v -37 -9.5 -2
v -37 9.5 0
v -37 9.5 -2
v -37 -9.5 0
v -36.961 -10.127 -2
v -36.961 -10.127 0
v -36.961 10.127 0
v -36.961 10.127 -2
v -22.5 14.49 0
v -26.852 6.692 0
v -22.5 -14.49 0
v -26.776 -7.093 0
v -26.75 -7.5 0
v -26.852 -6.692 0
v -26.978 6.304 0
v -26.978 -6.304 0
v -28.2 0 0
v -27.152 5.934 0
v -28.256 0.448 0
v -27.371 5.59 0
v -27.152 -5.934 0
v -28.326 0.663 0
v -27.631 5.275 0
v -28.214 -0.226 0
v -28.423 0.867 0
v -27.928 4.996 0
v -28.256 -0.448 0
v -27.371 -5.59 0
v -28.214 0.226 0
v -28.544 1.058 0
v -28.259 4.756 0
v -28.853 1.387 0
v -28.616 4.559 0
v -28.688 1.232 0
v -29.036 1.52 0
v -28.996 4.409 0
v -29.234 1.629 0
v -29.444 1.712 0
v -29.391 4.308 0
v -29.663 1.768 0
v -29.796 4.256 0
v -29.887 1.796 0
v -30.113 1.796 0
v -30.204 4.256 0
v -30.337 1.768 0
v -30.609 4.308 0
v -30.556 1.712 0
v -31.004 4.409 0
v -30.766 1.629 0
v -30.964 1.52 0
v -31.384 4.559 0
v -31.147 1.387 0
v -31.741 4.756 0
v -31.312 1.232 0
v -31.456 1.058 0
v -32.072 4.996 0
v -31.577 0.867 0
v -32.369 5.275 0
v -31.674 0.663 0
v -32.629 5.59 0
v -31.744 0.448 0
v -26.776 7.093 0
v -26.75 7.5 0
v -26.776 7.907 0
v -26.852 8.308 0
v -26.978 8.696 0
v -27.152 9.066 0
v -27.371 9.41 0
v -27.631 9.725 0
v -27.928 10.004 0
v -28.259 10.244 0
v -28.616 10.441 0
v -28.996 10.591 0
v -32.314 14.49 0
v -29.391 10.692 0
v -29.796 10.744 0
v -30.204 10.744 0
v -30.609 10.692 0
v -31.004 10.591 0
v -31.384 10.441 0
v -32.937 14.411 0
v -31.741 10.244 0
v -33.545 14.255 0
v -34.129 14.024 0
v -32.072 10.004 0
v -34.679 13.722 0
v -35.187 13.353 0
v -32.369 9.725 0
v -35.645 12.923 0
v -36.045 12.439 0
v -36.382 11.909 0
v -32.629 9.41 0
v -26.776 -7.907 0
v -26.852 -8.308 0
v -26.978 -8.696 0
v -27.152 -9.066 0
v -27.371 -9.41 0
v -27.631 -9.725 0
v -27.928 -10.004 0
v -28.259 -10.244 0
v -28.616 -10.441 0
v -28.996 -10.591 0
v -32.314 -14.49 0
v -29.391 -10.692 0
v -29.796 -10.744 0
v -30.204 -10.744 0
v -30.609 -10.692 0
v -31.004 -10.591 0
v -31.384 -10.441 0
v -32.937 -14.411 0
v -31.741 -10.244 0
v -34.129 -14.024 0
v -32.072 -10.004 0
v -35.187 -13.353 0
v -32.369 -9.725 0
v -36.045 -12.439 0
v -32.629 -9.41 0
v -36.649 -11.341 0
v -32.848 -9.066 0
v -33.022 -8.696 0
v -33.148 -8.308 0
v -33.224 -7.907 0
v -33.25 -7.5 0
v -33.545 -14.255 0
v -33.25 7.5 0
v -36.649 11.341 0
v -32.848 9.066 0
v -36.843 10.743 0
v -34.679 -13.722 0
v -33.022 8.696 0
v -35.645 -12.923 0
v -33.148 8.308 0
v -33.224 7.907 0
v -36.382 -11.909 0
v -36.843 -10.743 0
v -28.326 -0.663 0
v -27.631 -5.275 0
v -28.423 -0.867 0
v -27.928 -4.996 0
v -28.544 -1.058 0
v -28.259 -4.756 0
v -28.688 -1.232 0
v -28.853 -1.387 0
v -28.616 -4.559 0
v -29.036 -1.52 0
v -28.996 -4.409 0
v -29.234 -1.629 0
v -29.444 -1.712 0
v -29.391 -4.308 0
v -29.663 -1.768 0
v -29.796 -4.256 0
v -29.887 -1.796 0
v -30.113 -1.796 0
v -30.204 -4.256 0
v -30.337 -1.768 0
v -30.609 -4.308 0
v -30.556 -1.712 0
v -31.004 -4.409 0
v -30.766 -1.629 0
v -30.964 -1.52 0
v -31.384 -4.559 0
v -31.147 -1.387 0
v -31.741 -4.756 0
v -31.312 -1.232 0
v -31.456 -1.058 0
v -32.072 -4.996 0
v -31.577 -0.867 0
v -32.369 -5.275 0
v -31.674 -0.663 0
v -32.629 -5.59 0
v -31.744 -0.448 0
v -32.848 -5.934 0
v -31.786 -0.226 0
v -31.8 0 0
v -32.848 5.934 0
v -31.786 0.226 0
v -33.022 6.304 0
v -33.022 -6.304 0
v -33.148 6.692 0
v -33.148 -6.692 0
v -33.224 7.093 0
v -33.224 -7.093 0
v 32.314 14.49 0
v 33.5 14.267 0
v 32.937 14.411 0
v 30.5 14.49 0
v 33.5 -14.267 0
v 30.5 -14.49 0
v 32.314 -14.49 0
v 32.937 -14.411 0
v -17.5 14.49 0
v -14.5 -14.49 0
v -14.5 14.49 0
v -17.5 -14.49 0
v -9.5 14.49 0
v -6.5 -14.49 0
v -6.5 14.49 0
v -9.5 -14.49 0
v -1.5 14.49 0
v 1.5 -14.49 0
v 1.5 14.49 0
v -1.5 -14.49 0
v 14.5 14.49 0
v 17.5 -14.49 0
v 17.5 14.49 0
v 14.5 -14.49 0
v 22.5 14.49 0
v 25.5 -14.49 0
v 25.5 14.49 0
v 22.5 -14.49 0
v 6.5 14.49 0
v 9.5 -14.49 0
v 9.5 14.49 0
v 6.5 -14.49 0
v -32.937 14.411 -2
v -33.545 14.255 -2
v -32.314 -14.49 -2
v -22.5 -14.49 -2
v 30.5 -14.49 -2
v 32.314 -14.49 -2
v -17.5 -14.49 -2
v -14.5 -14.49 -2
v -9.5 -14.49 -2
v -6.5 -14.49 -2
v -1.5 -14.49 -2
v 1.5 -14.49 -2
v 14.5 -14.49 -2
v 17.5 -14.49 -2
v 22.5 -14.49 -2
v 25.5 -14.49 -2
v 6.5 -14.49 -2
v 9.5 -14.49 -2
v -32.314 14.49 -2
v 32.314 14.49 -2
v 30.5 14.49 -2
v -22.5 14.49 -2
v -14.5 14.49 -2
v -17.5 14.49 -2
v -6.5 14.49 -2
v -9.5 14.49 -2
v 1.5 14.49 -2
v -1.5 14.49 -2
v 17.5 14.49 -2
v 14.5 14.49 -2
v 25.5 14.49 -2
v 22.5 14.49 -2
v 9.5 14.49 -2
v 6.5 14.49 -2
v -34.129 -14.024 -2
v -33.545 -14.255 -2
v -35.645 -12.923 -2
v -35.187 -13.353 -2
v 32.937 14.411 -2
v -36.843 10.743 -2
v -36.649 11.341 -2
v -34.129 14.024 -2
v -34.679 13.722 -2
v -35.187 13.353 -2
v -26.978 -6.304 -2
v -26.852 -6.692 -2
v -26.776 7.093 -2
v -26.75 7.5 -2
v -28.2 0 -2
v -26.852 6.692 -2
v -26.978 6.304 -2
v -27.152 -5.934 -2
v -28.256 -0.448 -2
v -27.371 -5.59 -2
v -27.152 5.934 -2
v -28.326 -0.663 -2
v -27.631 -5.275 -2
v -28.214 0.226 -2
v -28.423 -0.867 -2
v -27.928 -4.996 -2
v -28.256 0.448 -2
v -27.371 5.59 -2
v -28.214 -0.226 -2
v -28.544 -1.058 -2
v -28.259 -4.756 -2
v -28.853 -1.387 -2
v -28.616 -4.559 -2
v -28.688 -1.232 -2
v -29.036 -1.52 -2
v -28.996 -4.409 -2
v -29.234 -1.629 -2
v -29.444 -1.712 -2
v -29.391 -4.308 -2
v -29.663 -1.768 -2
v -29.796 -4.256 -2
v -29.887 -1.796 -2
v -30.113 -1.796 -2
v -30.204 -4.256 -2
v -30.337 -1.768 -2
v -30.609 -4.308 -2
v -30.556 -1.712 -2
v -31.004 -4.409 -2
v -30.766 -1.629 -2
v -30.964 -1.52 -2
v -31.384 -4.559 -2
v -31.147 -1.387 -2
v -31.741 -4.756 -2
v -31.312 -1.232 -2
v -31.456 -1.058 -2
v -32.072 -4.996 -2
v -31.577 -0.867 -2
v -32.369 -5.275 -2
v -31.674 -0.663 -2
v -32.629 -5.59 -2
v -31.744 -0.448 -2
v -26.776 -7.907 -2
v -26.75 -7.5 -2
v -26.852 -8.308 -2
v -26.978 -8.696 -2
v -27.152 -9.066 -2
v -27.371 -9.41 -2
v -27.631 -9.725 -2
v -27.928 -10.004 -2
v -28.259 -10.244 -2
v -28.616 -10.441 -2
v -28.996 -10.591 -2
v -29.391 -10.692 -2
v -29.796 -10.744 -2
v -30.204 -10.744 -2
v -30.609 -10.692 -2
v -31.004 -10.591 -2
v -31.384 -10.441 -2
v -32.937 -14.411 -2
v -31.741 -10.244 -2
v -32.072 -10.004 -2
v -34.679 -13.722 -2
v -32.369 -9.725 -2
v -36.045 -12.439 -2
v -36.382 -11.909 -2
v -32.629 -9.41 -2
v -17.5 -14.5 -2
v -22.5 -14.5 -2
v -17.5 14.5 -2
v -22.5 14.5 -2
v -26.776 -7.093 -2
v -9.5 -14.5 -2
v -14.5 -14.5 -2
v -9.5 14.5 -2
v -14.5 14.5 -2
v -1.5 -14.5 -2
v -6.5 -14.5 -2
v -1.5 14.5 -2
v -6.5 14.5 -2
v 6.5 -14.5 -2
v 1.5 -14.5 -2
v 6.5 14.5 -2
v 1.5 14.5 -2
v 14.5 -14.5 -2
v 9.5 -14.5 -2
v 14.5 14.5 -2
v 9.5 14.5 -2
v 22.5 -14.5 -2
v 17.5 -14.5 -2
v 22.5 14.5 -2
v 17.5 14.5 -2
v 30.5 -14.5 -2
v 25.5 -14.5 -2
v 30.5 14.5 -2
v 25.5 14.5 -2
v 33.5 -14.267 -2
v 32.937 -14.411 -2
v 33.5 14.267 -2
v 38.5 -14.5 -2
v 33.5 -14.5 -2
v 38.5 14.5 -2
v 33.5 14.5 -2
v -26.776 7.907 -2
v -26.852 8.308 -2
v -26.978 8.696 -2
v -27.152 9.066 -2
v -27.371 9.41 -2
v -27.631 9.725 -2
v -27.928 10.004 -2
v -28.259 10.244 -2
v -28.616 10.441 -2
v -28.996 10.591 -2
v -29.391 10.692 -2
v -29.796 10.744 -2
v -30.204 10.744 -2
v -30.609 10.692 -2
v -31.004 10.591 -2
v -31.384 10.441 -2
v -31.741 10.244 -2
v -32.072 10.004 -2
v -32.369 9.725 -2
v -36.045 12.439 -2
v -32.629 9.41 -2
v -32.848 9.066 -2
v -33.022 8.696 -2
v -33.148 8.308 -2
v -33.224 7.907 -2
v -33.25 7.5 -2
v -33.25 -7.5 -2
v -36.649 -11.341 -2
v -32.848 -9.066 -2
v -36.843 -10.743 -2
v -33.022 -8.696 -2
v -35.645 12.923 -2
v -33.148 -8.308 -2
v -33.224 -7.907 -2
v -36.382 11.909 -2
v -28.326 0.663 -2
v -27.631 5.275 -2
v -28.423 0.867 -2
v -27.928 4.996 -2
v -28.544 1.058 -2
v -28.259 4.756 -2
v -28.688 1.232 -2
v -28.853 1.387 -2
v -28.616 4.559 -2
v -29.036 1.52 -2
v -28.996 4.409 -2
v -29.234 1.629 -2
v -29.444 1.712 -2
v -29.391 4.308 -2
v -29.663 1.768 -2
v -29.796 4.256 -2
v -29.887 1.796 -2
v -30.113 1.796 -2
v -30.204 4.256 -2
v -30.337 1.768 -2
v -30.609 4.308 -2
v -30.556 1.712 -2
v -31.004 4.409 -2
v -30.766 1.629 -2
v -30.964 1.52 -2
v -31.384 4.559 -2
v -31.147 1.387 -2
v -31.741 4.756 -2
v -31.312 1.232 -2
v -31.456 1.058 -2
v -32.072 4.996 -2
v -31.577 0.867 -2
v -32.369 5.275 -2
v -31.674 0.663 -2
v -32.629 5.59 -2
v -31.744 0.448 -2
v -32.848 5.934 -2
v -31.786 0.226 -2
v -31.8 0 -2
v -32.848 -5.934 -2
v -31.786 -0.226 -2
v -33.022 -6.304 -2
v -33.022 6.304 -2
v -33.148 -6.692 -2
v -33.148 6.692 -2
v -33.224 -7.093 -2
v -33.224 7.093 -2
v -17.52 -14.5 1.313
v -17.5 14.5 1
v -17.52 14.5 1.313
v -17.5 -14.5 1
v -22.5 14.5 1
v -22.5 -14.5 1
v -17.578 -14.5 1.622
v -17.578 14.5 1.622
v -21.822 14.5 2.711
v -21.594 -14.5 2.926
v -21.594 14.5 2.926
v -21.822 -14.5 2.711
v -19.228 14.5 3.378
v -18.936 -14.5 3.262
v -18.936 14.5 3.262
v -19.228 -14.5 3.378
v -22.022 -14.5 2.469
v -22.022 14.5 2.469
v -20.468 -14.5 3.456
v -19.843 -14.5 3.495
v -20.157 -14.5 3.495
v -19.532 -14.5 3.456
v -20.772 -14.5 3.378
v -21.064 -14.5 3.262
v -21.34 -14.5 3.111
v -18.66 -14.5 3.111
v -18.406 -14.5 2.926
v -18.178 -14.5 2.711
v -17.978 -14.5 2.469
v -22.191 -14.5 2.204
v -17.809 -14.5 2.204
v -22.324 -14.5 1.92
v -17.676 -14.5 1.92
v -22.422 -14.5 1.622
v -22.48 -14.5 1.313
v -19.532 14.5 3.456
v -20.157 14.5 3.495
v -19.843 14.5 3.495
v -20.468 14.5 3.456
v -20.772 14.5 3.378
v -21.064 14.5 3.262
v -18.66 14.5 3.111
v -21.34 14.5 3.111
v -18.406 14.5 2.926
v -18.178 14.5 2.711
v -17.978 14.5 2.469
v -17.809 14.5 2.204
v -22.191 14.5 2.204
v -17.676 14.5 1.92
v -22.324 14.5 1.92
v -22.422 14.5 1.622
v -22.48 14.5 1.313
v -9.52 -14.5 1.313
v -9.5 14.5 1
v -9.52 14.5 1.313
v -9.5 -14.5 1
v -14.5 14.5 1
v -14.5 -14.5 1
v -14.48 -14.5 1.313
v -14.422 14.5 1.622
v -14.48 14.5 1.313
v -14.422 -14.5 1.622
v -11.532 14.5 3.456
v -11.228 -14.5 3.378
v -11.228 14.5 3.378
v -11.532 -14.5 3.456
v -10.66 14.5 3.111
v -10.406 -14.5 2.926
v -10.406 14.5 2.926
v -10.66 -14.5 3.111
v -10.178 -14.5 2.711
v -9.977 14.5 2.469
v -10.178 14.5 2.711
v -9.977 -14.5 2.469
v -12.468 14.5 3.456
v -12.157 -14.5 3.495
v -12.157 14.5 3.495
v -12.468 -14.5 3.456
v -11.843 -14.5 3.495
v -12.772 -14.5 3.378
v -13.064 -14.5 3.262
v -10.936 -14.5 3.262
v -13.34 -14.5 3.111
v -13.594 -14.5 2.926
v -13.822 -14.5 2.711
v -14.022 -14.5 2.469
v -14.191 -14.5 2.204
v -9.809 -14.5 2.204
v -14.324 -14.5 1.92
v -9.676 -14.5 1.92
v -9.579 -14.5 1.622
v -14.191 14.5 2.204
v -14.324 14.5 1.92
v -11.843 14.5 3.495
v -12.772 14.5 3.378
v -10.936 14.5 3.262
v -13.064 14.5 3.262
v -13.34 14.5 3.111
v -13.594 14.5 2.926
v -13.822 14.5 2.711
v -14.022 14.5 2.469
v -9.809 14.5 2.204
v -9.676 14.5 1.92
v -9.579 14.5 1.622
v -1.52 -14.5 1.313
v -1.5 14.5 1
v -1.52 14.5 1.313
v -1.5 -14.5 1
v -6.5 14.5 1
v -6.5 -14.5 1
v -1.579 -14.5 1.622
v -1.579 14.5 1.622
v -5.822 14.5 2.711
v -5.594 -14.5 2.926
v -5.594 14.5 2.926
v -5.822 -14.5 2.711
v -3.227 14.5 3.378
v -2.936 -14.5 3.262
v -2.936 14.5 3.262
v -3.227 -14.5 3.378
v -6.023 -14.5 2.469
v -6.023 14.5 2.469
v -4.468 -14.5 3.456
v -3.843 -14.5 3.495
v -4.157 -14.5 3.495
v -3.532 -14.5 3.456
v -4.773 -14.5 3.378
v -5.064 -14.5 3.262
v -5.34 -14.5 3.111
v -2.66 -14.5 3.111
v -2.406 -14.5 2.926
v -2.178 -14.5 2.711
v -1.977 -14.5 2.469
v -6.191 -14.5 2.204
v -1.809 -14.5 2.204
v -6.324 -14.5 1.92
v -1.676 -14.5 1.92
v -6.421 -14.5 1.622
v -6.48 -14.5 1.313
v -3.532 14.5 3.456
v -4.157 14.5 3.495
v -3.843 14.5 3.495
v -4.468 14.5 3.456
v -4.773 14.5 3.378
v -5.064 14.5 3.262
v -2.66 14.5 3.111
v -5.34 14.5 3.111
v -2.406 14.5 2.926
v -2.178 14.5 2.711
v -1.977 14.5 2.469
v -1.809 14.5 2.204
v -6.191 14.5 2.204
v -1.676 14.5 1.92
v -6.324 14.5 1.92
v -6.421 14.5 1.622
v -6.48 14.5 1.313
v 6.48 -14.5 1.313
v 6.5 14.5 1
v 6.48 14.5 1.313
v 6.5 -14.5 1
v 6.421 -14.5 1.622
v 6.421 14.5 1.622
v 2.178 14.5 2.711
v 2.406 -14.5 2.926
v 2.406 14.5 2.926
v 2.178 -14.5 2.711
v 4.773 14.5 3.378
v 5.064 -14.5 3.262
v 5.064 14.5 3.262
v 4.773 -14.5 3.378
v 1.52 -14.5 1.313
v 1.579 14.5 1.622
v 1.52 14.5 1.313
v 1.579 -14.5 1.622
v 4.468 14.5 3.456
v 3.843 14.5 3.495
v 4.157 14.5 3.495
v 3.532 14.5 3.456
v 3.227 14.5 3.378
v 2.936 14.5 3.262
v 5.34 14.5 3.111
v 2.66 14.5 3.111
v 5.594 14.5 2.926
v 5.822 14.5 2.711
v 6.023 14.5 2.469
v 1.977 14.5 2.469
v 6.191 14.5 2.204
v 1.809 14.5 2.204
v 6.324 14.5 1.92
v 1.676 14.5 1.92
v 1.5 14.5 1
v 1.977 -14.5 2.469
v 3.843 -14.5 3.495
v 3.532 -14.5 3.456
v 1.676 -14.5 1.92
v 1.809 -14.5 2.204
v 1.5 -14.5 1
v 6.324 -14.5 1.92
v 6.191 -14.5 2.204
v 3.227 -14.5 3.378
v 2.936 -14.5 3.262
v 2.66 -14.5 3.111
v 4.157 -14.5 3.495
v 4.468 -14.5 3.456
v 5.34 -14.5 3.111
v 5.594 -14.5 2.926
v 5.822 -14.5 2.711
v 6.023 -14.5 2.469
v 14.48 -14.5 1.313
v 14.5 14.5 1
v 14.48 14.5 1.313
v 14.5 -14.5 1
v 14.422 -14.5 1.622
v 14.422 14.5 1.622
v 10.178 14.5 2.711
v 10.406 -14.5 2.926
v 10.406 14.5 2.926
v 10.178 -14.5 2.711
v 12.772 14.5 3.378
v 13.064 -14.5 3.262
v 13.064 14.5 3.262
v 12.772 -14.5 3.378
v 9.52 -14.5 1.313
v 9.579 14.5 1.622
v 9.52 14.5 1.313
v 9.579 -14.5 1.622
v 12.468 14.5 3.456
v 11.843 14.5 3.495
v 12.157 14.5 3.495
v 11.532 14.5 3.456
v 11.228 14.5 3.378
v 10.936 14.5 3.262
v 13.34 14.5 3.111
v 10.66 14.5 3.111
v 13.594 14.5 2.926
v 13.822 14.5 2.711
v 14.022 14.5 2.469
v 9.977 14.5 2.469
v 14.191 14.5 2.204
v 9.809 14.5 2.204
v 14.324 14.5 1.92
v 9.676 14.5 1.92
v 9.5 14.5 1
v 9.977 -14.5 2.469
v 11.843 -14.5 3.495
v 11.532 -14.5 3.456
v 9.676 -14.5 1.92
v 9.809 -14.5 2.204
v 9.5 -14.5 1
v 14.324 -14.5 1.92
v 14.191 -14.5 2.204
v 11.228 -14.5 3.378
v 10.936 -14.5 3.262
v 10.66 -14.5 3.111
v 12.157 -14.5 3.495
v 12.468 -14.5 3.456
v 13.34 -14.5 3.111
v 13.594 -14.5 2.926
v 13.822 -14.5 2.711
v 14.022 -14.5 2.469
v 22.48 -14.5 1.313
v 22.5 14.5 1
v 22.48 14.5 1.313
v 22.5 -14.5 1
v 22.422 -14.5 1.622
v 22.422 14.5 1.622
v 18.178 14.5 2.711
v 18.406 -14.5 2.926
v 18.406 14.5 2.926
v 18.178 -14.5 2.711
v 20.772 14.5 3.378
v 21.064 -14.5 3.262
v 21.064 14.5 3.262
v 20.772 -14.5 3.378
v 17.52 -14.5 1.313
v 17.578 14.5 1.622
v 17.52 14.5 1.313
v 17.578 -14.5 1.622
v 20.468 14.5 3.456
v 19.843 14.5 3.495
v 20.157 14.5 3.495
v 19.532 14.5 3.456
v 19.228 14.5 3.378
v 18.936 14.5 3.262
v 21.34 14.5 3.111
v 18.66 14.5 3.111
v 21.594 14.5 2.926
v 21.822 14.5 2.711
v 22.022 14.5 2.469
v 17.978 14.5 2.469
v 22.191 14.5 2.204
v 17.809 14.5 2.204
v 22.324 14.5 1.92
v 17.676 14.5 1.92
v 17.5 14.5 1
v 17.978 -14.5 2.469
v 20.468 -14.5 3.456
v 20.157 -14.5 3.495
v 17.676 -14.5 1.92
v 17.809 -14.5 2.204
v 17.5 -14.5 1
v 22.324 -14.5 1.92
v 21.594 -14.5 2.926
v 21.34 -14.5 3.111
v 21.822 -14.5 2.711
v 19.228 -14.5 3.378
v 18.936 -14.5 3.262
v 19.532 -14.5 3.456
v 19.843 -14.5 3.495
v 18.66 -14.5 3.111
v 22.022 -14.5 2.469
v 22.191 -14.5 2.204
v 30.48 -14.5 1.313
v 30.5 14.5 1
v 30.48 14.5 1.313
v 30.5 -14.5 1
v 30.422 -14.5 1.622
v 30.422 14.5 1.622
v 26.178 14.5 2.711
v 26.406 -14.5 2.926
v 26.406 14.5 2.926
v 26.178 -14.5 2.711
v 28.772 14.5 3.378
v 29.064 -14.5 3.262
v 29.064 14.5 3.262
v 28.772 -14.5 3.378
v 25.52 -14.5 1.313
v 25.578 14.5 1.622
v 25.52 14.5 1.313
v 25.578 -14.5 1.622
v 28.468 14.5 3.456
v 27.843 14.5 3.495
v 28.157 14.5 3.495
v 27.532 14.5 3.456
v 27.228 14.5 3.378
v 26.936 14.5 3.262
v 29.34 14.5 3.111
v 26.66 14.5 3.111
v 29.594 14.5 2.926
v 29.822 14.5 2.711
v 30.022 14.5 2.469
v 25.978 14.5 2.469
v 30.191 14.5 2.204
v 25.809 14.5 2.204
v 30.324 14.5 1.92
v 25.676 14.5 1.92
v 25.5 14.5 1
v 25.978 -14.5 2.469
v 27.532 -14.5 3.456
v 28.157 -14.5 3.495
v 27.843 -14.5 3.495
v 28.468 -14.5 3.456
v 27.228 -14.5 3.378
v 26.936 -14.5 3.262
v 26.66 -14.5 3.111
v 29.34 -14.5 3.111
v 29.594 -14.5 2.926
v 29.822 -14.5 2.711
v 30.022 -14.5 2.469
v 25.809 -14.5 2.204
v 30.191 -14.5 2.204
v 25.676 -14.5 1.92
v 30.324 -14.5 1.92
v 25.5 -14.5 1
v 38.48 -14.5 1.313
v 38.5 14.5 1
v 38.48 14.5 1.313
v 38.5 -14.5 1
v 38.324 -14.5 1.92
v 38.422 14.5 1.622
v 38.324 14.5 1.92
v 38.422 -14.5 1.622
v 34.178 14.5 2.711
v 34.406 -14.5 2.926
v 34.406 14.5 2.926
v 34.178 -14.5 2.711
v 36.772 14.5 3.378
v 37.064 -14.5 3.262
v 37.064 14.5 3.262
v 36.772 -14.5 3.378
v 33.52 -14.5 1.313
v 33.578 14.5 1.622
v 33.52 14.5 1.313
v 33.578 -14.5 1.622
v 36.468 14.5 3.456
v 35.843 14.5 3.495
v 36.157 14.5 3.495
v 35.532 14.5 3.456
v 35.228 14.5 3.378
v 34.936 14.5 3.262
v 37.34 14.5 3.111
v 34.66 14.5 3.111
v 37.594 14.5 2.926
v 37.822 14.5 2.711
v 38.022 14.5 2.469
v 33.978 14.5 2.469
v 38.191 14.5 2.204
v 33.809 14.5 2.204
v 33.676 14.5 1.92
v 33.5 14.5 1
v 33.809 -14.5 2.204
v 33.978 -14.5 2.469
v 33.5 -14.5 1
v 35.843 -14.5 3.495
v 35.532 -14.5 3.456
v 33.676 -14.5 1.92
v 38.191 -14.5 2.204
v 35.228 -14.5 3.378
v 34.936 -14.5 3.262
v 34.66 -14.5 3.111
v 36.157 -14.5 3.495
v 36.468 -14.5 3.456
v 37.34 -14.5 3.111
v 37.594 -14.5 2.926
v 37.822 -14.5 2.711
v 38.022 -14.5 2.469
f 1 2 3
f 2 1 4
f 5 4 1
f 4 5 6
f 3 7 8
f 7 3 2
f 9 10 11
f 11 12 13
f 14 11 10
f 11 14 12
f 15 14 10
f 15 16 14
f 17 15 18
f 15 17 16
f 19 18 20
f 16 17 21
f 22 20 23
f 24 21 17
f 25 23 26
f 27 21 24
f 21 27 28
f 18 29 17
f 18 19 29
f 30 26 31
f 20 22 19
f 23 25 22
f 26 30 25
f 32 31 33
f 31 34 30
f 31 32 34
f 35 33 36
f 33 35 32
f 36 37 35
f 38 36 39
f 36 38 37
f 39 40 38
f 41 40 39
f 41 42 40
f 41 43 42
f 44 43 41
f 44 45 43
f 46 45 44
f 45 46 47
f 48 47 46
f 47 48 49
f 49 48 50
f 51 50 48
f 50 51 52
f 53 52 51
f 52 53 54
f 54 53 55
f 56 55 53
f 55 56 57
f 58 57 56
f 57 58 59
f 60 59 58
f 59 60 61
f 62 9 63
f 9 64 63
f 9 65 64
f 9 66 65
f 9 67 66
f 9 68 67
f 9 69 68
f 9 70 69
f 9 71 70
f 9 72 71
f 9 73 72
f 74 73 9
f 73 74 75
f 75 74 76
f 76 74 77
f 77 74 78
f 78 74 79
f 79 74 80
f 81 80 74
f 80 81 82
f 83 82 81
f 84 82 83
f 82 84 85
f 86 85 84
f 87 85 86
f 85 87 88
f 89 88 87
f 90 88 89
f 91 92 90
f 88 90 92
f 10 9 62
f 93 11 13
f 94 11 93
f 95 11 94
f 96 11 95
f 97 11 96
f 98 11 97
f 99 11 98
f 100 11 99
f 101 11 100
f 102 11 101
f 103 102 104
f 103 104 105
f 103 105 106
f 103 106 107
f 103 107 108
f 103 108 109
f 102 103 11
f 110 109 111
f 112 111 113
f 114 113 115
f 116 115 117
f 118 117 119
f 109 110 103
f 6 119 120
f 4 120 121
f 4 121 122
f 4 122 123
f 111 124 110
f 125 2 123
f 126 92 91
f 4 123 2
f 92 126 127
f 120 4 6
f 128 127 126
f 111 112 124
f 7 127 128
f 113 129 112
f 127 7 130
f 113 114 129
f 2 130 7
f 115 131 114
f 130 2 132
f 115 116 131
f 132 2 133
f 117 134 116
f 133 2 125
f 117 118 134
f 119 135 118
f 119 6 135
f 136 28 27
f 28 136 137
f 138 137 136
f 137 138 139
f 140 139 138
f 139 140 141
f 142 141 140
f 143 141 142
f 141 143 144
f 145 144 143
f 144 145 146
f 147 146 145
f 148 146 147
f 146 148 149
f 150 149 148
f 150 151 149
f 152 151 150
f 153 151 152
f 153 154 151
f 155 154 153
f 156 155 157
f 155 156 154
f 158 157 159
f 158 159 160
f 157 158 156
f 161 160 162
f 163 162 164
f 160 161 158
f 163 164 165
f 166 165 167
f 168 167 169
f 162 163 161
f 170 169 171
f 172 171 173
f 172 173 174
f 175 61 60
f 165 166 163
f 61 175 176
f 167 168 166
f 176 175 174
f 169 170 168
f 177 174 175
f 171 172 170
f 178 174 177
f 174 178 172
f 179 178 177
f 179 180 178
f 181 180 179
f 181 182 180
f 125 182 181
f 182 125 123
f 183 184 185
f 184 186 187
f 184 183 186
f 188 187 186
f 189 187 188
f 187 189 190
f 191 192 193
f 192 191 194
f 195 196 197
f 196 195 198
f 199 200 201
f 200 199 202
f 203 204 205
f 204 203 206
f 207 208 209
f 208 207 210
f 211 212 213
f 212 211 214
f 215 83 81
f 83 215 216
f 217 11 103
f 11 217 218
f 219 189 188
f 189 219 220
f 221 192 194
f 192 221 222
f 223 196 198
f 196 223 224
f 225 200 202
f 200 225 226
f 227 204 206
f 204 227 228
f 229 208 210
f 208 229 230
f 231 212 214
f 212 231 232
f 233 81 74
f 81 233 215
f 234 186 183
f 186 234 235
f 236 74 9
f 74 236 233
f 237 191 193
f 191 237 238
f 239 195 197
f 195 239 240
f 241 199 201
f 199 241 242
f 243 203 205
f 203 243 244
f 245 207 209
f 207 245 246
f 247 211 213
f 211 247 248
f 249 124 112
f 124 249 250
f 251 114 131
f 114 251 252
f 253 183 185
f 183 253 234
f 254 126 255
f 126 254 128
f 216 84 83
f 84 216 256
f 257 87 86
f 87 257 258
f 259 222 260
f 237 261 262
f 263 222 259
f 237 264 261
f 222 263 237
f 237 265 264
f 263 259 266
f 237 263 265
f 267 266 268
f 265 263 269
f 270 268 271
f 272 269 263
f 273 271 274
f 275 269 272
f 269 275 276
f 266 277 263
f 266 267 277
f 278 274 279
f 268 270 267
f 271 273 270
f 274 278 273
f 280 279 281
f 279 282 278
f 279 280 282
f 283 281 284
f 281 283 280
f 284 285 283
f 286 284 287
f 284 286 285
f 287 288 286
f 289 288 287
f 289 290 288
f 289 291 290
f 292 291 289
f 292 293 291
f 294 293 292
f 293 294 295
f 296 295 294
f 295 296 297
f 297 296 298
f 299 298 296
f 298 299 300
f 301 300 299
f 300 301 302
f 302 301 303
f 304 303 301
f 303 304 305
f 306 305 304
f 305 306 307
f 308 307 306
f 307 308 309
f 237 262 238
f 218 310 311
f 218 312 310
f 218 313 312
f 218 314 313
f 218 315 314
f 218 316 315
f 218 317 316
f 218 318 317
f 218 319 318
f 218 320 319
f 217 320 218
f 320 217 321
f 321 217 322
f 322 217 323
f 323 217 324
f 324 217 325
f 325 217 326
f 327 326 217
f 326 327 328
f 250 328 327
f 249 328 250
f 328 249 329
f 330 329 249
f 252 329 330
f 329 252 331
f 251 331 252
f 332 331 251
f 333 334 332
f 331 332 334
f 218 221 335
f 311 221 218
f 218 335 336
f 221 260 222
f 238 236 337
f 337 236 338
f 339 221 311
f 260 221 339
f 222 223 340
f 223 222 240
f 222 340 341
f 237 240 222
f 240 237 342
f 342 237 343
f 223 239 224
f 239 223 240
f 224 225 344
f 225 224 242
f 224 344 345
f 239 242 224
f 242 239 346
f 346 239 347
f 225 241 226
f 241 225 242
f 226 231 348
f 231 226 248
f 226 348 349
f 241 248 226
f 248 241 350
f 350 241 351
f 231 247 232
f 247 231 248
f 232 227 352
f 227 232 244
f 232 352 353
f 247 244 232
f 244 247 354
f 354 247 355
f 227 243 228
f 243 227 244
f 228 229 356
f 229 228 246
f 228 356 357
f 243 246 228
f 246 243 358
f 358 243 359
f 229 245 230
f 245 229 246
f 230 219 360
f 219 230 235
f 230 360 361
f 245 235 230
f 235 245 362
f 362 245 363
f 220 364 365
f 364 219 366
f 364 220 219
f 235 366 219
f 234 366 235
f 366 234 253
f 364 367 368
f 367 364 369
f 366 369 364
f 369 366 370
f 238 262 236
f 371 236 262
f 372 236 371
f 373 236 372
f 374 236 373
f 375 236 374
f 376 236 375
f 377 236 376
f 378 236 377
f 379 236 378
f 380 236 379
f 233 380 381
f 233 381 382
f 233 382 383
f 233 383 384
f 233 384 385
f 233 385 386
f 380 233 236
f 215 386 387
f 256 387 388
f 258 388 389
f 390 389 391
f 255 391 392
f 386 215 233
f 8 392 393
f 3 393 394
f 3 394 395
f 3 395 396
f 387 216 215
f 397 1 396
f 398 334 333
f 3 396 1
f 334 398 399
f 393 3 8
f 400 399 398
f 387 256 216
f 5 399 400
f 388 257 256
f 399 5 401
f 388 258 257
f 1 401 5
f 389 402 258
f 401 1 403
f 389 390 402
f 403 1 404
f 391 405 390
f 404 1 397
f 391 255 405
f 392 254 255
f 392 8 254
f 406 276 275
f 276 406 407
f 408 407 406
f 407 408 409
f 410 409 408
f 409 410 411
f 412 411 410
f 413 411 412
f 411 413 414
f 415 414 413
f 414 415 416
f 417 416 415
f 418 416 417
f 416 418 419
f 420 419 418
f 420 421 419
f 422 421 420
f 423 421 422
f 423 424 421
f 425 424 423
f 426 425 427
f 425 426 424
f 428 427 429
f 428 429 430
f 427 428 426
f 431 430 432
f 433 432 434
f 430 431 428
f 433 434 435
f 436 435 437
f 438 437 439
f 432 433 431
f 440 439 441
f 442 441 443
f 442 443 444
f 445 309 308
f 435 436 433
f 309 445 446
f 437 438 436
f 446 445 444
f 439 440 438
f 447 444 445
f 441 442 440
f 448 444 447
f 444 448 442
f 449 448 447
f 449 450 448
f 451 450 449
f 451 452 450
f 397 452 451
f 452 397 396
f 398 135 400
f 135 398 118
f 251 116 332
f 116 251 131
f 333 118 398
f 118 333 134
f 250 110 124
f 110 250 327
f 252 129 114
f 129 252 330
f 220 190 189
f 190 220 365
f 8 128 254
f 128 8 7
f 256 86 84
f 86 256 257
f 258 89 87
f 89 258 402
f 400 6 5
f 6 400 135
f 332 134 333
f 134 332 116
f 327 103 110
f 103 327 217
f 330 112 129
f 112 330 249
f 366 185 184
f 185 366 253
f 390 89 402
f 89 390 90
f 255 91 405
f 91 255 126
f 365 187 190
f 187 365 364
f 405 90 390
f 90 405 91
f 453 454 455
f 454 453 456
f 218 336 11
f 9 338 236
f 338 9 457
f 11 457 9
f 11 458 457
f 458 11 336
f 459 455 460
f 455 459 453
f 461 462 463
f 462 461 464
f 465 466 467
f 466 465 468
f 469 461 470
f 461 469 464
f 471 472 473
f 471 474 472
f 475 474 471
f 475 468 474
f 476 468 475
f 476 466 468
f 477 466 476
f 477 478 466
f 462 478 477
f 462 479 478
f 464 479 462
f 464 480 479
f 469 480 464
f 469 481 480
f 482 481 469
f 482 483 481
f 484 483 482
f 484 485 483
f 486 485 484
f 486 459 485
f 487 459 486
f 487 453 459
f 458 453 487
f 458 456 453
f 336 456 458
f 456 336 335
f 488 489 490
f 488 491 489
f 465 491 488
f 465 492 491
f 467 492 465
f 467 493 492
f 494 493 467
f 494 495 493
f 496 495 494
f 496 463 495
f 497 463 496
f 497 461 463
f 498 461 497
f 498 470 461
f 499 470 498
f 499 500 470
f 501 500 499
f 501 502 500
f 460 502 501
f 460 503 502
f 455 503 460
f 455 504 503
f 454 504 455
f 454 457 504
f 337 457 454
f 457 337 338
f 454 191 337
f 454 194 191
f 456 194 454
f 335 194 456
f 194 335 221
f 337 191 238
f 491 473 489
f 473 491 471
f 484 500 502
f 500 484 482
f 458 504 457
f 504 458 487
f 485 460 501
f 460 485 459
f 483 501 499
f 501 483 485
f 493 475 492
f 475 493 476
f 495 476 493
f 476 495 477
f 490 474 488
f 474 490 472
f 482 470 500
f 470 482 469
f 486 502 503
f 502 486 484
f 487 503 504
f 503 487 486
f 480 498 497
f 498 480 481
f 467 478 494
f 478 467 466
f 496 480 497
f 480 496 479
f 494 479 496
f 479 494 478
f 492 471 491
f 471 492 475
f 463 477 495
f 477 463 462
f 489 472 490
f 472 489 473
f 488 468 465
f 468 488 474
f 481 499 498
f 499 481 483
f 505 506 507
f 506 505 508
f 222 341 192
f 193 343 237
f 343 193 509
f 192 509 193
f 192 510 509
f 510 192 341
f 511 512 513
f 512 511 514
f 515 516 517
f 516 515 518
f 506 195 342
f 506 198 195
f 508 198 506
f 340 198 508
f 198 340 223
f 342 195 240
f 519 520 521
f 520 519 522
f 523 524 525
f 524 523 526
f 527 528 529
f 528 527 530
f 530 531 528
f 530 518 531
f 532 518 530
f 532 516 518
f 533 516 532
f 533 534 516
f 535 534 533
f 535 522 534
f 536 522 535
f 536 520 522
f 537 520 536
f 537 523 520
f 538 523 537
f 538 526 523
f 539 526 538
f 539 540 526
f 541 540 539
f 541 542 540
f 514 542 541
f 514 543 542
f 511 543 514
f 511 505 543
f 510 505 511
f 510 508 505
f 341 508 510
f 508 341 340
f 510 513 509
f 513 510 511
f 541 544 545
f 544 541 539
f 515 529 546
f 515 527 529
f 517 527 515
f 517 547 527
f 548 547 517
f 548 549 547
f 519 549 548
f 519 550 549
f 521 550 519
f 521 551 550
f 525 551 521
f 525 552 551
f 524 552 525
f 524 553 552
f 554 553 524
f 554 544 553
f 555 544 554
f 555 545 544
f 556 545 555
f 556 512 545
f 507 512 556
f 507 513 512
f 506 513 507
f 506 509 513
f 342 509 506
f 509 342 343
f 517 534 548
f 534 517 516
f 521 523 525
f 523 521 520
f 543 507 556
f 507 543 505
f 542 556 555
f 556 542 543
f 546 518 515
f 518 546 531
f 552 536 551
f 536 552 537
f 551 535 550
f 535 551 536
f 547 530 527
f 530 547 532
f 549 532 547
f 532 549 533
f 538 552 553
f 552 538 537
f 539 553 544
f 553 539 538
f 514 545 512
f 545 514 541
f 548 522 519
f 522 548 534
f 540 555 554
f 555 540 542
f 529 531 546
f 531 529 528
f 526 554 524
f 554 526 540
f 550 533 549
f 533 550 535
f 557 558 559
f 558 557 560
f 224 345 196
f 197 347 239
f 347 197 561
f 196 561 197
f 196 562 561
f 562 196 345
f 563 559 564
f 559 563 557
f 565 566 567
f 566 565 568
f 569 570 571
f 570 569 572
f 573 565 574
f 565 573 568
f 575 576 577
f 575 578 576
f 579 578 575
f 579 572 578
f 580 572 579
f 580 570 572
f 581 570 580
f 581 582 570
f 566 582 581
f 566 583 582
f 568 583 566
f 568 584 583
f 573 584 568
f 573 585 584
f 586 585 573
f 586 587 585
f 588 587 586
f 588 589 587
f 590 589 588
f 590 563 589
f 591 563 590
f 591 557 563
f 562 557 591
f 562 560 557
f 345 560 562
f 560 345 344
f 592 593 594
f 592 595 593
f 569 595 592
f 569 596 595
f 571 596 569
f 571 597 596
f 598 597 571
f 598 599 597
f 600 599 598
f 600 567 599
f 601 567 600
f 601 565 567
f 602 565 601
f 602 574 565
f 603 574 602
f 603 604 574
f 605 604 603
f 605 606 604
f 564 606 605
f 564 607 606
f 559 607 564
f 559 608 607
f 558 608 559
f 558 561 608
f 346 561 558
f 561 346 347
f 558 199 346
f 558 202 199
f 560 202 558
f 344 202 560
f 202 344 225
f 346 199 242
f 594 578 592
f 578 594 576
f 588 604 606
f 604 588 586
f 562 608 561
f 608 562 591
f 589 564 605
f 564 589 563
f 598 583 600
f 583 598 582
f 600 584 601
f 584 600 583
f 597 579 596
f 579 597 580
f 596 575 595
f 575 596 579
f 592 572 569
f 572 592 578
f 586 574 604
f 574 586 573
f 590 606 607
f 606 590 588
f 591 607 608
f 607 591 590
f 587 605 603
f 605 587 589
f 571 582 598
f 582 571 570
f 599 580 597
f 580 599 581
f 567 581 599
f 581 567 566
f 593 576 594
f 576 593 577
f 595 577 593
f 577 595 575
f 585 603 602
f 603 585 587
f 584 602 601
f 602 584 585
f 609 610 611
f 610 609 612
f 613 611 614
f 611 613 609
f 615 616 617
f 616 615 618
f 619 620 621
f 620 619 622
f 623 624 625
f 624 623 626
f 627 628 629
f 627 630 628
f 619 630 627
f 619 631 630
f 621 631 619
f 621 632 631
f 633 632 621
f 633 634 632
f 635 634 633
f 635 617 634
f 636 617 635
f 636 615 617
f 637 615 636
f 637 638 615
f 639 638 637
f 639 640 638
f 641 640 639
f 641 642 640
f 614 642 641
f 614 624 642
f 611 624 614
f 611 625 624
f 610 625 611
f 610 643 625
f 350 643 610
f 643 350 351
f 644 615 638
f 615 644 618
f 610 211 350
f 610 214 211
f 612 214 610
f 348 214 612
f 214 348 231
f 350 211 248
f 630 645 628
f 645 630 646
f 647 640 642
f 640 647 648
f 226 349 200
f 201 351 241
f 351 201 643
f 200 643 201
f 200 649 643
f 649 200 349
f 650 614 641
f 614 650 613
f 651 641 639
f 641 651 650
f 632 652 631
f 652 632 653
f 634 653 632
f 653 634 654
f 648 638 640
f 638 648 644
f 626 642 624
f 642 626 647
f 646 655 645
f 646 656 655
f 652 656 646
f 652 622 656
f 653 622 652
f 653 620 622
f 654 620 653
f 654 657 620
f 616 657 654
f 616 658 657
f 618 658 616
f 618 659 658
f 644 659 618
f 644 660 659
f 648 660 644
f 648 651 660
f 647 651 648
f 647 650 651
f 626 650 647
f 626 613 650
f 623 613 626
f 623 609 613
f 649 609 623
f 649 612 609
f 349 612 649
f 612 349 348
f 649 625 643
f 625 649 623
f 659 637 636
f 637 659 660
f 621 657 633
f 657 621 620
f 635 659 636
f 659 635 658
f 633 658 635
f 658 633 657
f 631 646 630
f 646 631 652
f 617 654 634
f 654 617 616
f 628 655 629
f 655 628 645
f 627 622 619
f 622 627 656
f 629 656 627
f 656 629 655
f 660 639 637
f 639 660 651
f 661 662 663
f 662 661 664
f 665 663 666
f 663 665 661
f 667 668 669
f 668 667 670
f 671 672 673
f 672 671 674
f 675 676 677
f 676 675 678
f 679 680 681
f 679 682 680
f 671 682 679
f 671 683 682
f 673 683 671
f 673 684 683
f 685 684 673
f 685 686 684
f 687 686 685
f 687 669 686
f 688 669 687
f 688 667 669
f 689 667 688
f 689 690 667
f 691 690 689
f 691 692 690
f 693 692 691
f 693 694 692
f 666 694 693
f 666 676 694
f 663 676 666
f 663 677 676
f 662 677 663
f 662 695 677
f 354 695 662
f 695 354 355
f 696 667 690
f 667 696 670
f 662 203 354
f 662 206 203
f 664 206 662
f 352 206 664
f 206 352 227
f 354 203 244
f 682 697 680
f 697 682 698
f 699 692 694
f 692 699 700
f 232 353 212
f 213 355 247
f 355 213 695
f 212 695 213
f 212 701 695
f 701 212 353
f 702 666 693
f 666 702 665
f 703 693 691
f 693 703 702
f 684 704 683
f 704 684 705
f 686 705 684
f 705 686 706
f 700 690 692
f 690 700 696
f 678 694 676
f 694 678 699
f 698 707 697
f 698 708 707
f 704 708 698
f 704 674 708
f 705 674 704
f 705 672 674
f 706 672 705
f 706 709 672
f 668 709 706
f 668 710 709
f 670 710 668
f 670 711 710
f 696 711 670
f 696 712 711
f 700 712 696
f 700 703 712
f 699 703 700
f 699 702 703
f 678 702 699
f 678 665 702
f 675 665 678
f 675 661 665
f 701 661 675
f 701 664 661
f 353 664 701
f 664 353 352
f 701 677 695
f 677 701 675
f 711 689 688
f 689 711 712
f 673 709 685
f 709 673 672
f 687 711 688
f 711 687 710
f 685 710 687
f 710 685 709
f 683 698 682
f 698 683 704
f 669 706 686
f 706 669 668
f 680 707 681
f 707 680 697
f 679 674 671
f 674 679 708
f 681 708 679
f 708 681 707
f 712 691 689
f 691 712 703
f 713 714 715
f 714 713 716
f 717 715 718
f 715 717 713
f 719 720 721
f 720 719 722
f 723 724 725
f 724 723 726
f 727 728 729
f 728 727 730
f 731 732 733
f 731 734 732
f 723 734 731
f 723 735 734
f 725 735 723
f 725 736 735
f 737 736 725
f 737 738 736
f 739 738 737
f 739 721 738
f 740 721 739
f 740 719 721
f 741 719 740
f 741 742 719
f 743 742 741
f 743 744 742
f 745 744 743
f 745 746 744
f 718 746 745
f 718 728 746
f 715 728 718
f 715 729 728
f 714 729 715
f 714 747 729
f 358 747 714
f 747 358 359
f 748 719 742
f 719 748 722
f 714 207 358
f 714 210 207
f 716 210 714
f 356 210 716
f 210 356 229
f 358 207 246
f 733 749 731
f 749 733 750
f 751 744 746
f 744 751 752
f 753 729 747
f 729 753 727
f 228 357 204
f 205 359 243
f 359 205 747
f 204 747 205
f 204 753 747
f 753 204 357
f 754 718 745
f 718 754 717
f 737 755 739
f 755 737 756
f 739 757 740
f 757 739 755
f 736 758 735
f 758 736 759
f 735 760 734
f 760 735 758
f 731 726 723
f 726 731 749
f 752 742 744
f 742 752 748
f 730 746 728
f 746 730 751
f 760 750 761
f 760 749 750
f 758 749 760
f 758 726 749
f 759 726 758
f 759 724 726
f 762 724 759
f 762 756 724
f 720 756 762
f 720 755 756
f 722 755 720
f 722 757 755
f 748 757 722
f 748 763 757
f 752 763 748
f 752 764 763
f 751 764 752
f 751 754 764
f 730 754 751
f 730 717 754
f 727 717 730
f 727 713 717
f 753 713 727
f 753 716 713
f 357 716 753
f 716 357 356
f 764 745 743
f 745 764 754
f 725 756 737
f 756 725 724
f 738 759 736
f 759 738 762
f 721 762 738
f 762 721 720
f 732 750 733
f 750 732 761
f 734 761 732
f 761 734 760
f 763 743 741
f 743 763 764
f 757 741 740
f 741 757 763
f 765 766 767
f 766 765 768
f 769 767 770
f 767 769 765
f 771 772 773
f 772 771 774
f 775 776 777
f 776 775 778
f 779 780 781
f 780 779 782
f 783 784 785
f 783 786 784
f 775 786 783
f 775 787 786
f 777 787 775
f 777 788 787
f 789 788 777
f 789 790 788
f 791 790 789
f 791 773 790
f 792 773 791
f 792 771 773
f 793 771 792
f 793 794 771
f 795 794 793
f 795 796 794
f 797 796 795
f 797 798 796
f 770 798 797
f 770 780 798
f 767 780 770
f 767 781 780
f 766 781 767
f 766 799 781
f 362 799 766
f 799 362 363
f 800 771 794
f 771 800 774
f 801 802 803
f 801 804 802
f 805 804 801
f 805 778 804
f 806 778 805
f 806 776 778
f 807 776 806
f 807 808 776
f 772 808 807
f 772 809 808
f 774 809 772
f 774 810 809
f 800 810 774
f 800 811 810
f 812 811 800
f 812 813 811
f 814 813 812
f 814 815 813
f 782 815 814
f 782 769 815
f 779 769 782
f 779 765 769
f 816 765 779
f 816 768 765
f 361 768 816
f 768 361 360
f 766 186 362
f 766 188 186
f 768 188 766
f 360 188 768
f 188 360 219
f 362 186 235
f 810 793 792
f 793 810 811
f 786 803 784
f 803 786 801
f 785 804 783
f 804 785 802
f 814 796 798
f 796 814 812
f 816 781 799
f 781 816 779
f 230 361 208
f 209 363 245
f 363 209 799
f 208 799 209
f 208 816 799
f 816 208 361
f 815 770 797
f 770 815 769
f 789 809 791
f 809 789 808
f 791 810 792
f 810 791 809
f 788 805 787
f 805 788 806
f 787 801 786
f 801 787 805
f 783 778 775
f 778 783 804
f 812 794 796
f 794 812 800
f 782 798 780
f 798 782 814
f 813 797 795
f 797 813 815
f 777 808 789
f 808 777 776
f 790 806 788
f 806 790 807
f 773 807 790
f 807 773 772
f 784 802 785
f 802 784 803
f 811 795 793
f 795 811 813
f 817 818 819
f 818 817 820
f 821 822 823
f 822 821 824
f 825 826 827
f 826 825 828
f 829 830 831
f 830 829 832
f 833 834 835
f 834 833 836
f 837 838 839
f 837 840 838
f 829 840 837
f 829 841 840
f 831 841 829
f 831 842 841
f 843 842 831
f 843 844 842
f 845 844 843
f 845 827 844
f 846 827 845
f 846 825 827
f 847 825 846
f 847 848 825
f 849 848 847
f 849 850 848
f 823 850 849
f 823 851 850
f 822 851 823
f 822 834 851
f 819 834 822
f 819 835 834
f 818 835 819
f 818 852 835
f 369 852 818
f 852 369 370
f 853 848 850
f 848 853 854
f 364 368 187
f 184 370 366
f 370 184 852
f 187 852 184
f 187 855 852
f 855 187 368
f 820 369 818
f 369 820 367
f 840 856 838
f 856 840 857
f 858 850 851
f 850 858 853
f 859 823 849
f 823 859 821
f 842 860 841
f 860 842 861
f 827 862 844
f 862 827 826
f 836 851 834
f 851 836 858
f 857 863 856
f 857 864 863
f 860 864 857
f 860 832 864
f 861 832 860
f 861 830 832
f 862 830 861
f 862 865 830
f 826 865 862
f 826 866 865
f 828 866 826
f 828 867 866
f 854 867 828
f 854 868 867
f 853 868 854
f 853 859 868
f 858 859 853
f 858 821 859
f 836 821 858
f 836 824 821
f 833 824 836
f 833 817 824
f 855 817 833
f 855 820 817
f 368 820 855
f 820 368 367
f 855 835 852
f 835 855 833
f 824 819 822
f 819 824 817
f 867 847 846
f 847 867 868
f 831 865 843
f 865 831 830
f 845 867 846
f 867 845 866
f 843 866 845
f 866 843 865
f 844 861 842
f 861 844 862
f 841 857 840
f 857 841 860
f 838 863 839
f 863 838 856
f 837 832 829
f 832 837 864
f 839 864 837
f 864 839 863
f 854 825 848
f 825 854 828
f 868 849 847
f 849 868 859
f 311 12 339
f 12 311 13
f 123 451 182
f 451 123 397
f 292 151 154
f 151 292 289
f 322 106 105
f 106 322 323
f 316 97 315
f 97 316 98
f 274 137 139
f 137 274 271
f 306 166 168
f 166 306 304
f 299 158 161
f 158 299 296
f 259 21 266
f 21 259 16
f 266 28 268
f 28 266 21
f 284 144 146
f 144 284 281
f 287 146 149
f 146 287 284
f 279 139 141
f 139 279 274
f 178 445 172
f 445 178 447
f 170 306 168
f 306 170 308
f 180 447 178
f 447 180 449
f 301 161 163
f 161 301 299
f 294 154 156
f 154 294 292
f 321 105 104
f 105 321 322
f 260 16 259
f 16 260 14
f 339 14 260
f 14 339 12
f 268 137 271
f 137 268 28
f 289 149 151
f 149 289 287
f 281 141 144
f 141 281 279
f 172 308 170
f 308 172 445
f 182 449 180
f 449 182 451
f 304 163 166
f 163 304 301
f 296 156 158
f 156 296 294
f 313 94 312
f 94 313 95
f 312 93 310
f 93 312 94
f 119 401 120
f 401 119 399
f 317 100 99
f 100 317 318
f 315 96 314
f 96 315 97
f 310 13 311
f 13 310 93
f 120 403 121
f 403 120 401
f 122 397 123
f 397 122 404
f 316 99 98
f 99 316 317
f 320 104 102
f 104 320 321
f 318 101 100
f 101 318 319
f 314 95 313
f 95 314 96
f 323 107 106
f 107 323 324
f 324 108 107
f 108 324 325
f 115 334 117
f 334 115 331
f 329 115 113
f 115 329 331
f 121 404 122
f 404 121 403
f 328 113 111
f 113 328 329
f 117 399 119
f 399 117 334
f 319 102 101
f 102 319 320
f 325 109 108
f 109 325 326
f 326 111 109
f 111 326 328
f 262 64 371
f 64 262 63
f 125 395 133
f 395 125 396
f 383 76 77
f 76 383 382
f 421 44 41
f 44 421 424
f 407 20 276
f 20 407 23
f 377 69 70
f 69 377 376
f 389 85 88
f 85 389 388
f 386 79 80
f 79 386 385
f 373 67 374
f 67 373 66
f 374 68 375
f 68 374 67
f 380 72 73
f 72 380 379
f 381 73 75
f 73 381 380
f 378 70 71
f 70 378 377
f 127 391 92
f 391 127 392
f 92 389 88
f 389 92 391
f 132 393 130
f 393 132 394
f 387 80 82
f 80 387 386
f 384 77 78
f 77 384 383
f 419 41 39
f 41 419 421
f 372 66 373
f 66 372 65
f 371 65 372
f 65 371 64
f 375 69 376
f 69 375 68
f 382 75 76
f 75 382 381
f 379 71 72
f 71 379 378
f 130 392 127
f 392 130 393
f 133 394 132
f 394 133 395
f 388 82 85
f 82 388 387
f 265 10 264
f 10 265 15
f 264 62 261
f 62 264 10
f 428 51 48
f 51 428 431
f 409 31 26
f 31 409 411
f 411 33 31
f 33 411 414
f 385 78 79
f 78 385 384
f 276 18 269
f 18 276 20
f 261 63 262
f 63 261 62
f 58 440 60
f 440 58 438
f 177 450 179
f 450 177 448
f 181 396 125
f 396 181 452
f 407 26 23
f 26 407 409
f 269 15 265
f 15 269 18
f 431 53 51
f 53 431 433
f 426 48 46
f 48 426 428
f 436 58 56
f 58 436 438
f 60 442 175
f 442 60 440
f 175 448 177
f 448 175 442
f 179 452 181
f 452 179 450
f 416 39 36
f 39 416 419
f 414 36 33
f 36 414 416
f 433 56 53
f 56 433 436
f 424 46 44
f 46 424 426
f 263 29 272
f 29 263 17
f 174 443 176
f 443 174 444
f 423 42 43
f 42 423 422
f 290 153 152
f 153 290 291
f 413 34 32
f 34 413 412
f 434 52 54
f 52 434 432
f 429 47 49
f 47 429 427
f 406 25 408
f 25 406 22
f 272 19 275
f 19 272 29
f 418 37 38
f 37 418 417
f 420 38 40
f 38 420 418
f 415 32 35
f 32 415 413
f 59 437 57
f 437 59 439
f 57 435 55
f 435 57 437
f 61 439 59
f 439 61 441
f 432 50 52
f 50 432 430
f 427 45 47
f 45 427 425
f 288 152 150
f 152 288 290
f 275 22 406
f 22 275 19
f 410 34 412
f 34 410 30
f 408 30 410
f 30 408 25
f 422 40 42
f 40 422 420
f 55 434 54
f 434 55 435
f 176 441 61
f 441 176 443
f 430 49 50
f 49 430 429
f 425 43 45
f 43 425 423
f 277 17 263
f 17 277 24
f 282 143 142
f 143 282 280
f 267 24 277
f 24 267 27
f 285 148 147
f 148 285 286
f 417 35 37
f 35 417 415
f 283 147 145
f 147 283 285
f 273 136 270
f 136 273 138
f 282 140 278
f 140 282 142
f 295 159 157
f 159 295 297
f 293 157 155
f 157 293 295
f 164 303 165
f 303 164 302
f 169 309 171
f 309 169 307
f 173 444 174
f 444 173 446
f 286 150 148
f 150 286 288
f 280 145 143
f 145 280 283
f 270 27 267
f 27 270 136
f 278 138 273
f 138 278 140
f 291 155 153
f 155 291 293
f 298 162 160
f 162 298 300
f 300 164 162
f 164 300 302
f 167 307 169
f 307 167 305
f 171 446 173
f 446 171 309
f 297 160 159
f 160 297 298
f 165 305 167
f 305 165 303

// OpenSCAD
$fn = 50;


difference() {
	union() {
		translate(v = [0, 0, -2]) {
			hull() {
				translate(v = [-32.0000000000, 9.5000000000, 0]) {
					cylinder(h = 2, r = 5);
				}
				translate(v = [32.0000000000, 9.5000000000, 0]) {
					cylinder(h = 2, r = 5);
				}
				translate(v = [-32.0000000000, -9.5000000000, 0]) {
					cylinder(h = 2, r = 5);
				}
				translate(v = [32.0000000000, -9.5000000000, 0]) {
					cylinder(h = 2, r = 5);
				}
			}
		}
		translate(v = [-20.0000000000, 14.5000000000, -1.5000000000]) {
			rotate(a = [90, 0, 0]) {
				hull() {
					translate(v = [-0.0000000000, 2.5000000000, 0]) {
						cylinder(h = 29, r = 2.5000000000);
					}
					translate(v = [0.0000000000, 2.5000000000, 0]) {
						cylinder(h = 29, r = 2.5000000000);
					}
					translate(v = [-0.0000000000, -2.5000000000, 0]) {
						cylinder(h = 29, r = 2.5000000000);
					}
					translate(v = [0.0000000000, -2.5000000000, 0]) {
						cylinder(h = 29, r = 2.5000000000);
					}
				}
			}
		}
		translate(v = [-12.0000000000, 14.5000000000, -1.5000000000]) {
			rotate(a = [90, 0, 0]) {
				hull() {
					translate(v = [-0.0000000000, 2.5000000000, 0]) {
						cylinder(h = 29, r = 2.5000000000);
					}
					translate(v = [0.0000000000, 2.5000000000, 0]) {
						cylinder(h = 29, r = 2.5000000000);
					}
					translate(v = [-0.0000000000, -2.5000000000, 0]) {
						cylinder(h = 29, r = 2.5000000000);
					}
					translate(v = [0.0000000000, -2.5000000000, 0]) {
						cylinder(h = 29, r = 2.5000000000);
					}
				}
			}
		}
		translate(v = [-4.0000000000, 14.5000000000, -1.5000000000]) {
			rotate(a = [90, 0, 0]) {
				hull() {
					translate(v = [-0.0000000000, 2.5000000000, 0]) {
						cylinder(h = 29, r = 2.5000000000);
					}
					translate(v = [0.0000000000, 2.5000000000, 0]) {
						cylinder(h = 29, r = 2.5000000000);
					}
					translate(v = [-0.0000000000, -2.5000000000, 0]) {
						cylinder(h = 29, r = 2.5000000000);
					}
					translate(v = [0.0000000000, -2.5000000000, 0]) {
						cylinder(h = 29, r = 2.5000000000);
					}
				}
			}
		}
		translate(v = [4.0000000000, 14.5000000000, -1.5000000000]) {
			rotate(a = [90, 0, 0]) {
				hull() {
					translate(v = [-0.0000000000, 2.5000000000, 0]) {
						cylinder(h = 29, r = 2.5000000000);
					}
					translate(v = [0.0000000000, 2.5000000000, 0]) {
						cylinder(h = 29, r = 2.5000000000);
					}
					translate(v = [-0.0000000000, -2.5000000000, 0]) {
						cylinder(h = 29, r = 2.5000000000);
					}
					translate(v = [0.0000000000, -2.5000000000, 0]) {
						cylinder(h = 29, r = 2.5000000000);
					}
				}
			}
		}
		translate(v = [12.0000000000, 14.5000000000, -1.5000000000]) {
			rotate(a = [90, 0, 0]) {
				hull() {
					translate(v = [-0.0000000000, 2.5000000000, 0]) {
						cylinder(h = 29, r = 2.5000000000);
					}
					translate(v = [0.0000000000, 2.5000000000, 0]) {
						cylinder(h = 29, r = 2.5000000000);
					}
					translate(v = [-0.0000000000, -2.5000000000, 0]) {
						cylinder(h = 29, r = 2.5000000000);
					}
					translate(v = [0.0000000000, -2.5000000000, 0]) {
						cylinder(h = 29, r = 2.5000000000);
					}
				}
			}
		}
		translate(v = [20.0000000000, 14.5000000000, -1.5000000000]) {
			rotate(a = [90, 0, 0]) {
				hull() {
					translate(v = [-0.0000000000, 2.5000000000, 0]) {
						cylinder(h = 29, r = 2.5000000000);
					}
					translate(v = [0.0000000000, 2.5000000000, 0]) {
						cylinder(h = 29, r = 2.5000000000);
					}
					translate(v = [-0.0000000000, -2.5000000000, 0]) {
						cylinder(h = 29, r = 2.5000000000);
					}
					translate(v = [0.0000000000, -2.5000000000, 0]) {
						cylinder(h = 29, r = 2.5000000000);
					}
				}
			}
		}
		translate(v = [28.0000000000, 14.5000000000, -1.5000000000]) {
			rotate(a = [90, 0, 0]) {
				hull() {
					translate(v = [-0.0000000000, 2.5000000000, 0]) {
						cylinder(h = 29, r = 2.5000000000);
					}
					translate(v = [0.0000000000, 2.5000000000, 0]) {
						cylinder(h = 29, r = 2.5000000000);
					}
					translate(v = [-0.0000000000, -2.5000000000, 0]) {
						cylinder(h = 29, r = 2.5000000000);
					}
					translate(v = [0.0000000000, -2.5000000000, 0]) {
						cylinder(h = 29, r = 2.5000000000);
					}
				}
			}
		}
		translate(v = [36.0000000000, 14.5000000000, -1.5000000000]) {
			rotate(a = [90, 0, 0]) {
				hull() {
					translate(v = [-0.0000000000, 2.5000000000, 0]) {
						cylinder(h = 29, r = 2.5000000000);
					}
					translate(v = [0.0000000000, 2.5000000000, 0]) {
						cylinder(h = 29, r = 2.5000000000);
					}
					translate(v = [-0.0000000000, -2.5000000000, 0]) {
						cylinder(h = 29, r = 2.5000000000);
					}
					translate(v = [0.0000000000, -2.5000000000, 0]) {
						cylinder(h = 29, r = 2.5000000000);
					}
				}
			}
		}
	}
	union() {
		translate(v = [-250.0000000000, -250.0000000000, -502]) {
			cube(size = [500, 500, 500]);
		}
		translate(v = [-250.0000000000, -250.0000000000, -502]) {
			cube(size = [500, 500, 500]);
		}
		translate(v = [-250.0000000000, -250.0000000000, -502]) {
			cube(size = [500, 500, 500]);
		}
		translate(v = [-30.0000000000, -7.5000000000, -100.0000000000]) {
			cylinder(h = 200, r = 3.2500000000);
		}
		translate(v = [-30.0000000000, 7.5000000000, -100.0000000000]) {
			cylinder(h = 200, r = 3.2500000000);
		}
		translate(v = [-30.0000000000, -7.5000000000, -100.0000000000]) {
			cylinder(h = 200, r = 1.8000000000);
		}
		translate(v = [-30.0000000000, 0.0000000000, -100.0000000000]) {
			cylinder(h = 200, r = 1.8000000000);
		}
		translate(v = [-30.0000000000, 7.5000000000, -100.0000000000]) {
			cylinder(h = 200, r = 1.8000000000);
		}
		translate(v = [-30.0000000000, -7.5000000000, -100.0000000000]) {
			cylinder(h = 200, r = 1.8000000000);
		}
		translate(v = [-30.0000000000, 0.0000000000, -100.0000000000]) {
			cylinder(h = 200, r = 1.8000000000);
		}
		translate(v = [-30.0000000000, 7.5000000000, -100.0000000000]) {
			cylinder(h = 200, r = 1.8000000000);
		}
		translate(v = [-30.0000000000, -7.5000000000, -100.0000000000]) {
			cylinder(h = 200, r = 1.8000000000);
		}
		translate(v = [-30.0000000000, 0.0000000000, -100.0000000000]) {
			cylinder(h = 200, r = 1.8000000000);
		}
		translate(v = [-30.0000000000, 7.5000000000, -100.0000000000]) {
			cylinder(h = 200, r = 1.8000000000);
		}
	}
}
